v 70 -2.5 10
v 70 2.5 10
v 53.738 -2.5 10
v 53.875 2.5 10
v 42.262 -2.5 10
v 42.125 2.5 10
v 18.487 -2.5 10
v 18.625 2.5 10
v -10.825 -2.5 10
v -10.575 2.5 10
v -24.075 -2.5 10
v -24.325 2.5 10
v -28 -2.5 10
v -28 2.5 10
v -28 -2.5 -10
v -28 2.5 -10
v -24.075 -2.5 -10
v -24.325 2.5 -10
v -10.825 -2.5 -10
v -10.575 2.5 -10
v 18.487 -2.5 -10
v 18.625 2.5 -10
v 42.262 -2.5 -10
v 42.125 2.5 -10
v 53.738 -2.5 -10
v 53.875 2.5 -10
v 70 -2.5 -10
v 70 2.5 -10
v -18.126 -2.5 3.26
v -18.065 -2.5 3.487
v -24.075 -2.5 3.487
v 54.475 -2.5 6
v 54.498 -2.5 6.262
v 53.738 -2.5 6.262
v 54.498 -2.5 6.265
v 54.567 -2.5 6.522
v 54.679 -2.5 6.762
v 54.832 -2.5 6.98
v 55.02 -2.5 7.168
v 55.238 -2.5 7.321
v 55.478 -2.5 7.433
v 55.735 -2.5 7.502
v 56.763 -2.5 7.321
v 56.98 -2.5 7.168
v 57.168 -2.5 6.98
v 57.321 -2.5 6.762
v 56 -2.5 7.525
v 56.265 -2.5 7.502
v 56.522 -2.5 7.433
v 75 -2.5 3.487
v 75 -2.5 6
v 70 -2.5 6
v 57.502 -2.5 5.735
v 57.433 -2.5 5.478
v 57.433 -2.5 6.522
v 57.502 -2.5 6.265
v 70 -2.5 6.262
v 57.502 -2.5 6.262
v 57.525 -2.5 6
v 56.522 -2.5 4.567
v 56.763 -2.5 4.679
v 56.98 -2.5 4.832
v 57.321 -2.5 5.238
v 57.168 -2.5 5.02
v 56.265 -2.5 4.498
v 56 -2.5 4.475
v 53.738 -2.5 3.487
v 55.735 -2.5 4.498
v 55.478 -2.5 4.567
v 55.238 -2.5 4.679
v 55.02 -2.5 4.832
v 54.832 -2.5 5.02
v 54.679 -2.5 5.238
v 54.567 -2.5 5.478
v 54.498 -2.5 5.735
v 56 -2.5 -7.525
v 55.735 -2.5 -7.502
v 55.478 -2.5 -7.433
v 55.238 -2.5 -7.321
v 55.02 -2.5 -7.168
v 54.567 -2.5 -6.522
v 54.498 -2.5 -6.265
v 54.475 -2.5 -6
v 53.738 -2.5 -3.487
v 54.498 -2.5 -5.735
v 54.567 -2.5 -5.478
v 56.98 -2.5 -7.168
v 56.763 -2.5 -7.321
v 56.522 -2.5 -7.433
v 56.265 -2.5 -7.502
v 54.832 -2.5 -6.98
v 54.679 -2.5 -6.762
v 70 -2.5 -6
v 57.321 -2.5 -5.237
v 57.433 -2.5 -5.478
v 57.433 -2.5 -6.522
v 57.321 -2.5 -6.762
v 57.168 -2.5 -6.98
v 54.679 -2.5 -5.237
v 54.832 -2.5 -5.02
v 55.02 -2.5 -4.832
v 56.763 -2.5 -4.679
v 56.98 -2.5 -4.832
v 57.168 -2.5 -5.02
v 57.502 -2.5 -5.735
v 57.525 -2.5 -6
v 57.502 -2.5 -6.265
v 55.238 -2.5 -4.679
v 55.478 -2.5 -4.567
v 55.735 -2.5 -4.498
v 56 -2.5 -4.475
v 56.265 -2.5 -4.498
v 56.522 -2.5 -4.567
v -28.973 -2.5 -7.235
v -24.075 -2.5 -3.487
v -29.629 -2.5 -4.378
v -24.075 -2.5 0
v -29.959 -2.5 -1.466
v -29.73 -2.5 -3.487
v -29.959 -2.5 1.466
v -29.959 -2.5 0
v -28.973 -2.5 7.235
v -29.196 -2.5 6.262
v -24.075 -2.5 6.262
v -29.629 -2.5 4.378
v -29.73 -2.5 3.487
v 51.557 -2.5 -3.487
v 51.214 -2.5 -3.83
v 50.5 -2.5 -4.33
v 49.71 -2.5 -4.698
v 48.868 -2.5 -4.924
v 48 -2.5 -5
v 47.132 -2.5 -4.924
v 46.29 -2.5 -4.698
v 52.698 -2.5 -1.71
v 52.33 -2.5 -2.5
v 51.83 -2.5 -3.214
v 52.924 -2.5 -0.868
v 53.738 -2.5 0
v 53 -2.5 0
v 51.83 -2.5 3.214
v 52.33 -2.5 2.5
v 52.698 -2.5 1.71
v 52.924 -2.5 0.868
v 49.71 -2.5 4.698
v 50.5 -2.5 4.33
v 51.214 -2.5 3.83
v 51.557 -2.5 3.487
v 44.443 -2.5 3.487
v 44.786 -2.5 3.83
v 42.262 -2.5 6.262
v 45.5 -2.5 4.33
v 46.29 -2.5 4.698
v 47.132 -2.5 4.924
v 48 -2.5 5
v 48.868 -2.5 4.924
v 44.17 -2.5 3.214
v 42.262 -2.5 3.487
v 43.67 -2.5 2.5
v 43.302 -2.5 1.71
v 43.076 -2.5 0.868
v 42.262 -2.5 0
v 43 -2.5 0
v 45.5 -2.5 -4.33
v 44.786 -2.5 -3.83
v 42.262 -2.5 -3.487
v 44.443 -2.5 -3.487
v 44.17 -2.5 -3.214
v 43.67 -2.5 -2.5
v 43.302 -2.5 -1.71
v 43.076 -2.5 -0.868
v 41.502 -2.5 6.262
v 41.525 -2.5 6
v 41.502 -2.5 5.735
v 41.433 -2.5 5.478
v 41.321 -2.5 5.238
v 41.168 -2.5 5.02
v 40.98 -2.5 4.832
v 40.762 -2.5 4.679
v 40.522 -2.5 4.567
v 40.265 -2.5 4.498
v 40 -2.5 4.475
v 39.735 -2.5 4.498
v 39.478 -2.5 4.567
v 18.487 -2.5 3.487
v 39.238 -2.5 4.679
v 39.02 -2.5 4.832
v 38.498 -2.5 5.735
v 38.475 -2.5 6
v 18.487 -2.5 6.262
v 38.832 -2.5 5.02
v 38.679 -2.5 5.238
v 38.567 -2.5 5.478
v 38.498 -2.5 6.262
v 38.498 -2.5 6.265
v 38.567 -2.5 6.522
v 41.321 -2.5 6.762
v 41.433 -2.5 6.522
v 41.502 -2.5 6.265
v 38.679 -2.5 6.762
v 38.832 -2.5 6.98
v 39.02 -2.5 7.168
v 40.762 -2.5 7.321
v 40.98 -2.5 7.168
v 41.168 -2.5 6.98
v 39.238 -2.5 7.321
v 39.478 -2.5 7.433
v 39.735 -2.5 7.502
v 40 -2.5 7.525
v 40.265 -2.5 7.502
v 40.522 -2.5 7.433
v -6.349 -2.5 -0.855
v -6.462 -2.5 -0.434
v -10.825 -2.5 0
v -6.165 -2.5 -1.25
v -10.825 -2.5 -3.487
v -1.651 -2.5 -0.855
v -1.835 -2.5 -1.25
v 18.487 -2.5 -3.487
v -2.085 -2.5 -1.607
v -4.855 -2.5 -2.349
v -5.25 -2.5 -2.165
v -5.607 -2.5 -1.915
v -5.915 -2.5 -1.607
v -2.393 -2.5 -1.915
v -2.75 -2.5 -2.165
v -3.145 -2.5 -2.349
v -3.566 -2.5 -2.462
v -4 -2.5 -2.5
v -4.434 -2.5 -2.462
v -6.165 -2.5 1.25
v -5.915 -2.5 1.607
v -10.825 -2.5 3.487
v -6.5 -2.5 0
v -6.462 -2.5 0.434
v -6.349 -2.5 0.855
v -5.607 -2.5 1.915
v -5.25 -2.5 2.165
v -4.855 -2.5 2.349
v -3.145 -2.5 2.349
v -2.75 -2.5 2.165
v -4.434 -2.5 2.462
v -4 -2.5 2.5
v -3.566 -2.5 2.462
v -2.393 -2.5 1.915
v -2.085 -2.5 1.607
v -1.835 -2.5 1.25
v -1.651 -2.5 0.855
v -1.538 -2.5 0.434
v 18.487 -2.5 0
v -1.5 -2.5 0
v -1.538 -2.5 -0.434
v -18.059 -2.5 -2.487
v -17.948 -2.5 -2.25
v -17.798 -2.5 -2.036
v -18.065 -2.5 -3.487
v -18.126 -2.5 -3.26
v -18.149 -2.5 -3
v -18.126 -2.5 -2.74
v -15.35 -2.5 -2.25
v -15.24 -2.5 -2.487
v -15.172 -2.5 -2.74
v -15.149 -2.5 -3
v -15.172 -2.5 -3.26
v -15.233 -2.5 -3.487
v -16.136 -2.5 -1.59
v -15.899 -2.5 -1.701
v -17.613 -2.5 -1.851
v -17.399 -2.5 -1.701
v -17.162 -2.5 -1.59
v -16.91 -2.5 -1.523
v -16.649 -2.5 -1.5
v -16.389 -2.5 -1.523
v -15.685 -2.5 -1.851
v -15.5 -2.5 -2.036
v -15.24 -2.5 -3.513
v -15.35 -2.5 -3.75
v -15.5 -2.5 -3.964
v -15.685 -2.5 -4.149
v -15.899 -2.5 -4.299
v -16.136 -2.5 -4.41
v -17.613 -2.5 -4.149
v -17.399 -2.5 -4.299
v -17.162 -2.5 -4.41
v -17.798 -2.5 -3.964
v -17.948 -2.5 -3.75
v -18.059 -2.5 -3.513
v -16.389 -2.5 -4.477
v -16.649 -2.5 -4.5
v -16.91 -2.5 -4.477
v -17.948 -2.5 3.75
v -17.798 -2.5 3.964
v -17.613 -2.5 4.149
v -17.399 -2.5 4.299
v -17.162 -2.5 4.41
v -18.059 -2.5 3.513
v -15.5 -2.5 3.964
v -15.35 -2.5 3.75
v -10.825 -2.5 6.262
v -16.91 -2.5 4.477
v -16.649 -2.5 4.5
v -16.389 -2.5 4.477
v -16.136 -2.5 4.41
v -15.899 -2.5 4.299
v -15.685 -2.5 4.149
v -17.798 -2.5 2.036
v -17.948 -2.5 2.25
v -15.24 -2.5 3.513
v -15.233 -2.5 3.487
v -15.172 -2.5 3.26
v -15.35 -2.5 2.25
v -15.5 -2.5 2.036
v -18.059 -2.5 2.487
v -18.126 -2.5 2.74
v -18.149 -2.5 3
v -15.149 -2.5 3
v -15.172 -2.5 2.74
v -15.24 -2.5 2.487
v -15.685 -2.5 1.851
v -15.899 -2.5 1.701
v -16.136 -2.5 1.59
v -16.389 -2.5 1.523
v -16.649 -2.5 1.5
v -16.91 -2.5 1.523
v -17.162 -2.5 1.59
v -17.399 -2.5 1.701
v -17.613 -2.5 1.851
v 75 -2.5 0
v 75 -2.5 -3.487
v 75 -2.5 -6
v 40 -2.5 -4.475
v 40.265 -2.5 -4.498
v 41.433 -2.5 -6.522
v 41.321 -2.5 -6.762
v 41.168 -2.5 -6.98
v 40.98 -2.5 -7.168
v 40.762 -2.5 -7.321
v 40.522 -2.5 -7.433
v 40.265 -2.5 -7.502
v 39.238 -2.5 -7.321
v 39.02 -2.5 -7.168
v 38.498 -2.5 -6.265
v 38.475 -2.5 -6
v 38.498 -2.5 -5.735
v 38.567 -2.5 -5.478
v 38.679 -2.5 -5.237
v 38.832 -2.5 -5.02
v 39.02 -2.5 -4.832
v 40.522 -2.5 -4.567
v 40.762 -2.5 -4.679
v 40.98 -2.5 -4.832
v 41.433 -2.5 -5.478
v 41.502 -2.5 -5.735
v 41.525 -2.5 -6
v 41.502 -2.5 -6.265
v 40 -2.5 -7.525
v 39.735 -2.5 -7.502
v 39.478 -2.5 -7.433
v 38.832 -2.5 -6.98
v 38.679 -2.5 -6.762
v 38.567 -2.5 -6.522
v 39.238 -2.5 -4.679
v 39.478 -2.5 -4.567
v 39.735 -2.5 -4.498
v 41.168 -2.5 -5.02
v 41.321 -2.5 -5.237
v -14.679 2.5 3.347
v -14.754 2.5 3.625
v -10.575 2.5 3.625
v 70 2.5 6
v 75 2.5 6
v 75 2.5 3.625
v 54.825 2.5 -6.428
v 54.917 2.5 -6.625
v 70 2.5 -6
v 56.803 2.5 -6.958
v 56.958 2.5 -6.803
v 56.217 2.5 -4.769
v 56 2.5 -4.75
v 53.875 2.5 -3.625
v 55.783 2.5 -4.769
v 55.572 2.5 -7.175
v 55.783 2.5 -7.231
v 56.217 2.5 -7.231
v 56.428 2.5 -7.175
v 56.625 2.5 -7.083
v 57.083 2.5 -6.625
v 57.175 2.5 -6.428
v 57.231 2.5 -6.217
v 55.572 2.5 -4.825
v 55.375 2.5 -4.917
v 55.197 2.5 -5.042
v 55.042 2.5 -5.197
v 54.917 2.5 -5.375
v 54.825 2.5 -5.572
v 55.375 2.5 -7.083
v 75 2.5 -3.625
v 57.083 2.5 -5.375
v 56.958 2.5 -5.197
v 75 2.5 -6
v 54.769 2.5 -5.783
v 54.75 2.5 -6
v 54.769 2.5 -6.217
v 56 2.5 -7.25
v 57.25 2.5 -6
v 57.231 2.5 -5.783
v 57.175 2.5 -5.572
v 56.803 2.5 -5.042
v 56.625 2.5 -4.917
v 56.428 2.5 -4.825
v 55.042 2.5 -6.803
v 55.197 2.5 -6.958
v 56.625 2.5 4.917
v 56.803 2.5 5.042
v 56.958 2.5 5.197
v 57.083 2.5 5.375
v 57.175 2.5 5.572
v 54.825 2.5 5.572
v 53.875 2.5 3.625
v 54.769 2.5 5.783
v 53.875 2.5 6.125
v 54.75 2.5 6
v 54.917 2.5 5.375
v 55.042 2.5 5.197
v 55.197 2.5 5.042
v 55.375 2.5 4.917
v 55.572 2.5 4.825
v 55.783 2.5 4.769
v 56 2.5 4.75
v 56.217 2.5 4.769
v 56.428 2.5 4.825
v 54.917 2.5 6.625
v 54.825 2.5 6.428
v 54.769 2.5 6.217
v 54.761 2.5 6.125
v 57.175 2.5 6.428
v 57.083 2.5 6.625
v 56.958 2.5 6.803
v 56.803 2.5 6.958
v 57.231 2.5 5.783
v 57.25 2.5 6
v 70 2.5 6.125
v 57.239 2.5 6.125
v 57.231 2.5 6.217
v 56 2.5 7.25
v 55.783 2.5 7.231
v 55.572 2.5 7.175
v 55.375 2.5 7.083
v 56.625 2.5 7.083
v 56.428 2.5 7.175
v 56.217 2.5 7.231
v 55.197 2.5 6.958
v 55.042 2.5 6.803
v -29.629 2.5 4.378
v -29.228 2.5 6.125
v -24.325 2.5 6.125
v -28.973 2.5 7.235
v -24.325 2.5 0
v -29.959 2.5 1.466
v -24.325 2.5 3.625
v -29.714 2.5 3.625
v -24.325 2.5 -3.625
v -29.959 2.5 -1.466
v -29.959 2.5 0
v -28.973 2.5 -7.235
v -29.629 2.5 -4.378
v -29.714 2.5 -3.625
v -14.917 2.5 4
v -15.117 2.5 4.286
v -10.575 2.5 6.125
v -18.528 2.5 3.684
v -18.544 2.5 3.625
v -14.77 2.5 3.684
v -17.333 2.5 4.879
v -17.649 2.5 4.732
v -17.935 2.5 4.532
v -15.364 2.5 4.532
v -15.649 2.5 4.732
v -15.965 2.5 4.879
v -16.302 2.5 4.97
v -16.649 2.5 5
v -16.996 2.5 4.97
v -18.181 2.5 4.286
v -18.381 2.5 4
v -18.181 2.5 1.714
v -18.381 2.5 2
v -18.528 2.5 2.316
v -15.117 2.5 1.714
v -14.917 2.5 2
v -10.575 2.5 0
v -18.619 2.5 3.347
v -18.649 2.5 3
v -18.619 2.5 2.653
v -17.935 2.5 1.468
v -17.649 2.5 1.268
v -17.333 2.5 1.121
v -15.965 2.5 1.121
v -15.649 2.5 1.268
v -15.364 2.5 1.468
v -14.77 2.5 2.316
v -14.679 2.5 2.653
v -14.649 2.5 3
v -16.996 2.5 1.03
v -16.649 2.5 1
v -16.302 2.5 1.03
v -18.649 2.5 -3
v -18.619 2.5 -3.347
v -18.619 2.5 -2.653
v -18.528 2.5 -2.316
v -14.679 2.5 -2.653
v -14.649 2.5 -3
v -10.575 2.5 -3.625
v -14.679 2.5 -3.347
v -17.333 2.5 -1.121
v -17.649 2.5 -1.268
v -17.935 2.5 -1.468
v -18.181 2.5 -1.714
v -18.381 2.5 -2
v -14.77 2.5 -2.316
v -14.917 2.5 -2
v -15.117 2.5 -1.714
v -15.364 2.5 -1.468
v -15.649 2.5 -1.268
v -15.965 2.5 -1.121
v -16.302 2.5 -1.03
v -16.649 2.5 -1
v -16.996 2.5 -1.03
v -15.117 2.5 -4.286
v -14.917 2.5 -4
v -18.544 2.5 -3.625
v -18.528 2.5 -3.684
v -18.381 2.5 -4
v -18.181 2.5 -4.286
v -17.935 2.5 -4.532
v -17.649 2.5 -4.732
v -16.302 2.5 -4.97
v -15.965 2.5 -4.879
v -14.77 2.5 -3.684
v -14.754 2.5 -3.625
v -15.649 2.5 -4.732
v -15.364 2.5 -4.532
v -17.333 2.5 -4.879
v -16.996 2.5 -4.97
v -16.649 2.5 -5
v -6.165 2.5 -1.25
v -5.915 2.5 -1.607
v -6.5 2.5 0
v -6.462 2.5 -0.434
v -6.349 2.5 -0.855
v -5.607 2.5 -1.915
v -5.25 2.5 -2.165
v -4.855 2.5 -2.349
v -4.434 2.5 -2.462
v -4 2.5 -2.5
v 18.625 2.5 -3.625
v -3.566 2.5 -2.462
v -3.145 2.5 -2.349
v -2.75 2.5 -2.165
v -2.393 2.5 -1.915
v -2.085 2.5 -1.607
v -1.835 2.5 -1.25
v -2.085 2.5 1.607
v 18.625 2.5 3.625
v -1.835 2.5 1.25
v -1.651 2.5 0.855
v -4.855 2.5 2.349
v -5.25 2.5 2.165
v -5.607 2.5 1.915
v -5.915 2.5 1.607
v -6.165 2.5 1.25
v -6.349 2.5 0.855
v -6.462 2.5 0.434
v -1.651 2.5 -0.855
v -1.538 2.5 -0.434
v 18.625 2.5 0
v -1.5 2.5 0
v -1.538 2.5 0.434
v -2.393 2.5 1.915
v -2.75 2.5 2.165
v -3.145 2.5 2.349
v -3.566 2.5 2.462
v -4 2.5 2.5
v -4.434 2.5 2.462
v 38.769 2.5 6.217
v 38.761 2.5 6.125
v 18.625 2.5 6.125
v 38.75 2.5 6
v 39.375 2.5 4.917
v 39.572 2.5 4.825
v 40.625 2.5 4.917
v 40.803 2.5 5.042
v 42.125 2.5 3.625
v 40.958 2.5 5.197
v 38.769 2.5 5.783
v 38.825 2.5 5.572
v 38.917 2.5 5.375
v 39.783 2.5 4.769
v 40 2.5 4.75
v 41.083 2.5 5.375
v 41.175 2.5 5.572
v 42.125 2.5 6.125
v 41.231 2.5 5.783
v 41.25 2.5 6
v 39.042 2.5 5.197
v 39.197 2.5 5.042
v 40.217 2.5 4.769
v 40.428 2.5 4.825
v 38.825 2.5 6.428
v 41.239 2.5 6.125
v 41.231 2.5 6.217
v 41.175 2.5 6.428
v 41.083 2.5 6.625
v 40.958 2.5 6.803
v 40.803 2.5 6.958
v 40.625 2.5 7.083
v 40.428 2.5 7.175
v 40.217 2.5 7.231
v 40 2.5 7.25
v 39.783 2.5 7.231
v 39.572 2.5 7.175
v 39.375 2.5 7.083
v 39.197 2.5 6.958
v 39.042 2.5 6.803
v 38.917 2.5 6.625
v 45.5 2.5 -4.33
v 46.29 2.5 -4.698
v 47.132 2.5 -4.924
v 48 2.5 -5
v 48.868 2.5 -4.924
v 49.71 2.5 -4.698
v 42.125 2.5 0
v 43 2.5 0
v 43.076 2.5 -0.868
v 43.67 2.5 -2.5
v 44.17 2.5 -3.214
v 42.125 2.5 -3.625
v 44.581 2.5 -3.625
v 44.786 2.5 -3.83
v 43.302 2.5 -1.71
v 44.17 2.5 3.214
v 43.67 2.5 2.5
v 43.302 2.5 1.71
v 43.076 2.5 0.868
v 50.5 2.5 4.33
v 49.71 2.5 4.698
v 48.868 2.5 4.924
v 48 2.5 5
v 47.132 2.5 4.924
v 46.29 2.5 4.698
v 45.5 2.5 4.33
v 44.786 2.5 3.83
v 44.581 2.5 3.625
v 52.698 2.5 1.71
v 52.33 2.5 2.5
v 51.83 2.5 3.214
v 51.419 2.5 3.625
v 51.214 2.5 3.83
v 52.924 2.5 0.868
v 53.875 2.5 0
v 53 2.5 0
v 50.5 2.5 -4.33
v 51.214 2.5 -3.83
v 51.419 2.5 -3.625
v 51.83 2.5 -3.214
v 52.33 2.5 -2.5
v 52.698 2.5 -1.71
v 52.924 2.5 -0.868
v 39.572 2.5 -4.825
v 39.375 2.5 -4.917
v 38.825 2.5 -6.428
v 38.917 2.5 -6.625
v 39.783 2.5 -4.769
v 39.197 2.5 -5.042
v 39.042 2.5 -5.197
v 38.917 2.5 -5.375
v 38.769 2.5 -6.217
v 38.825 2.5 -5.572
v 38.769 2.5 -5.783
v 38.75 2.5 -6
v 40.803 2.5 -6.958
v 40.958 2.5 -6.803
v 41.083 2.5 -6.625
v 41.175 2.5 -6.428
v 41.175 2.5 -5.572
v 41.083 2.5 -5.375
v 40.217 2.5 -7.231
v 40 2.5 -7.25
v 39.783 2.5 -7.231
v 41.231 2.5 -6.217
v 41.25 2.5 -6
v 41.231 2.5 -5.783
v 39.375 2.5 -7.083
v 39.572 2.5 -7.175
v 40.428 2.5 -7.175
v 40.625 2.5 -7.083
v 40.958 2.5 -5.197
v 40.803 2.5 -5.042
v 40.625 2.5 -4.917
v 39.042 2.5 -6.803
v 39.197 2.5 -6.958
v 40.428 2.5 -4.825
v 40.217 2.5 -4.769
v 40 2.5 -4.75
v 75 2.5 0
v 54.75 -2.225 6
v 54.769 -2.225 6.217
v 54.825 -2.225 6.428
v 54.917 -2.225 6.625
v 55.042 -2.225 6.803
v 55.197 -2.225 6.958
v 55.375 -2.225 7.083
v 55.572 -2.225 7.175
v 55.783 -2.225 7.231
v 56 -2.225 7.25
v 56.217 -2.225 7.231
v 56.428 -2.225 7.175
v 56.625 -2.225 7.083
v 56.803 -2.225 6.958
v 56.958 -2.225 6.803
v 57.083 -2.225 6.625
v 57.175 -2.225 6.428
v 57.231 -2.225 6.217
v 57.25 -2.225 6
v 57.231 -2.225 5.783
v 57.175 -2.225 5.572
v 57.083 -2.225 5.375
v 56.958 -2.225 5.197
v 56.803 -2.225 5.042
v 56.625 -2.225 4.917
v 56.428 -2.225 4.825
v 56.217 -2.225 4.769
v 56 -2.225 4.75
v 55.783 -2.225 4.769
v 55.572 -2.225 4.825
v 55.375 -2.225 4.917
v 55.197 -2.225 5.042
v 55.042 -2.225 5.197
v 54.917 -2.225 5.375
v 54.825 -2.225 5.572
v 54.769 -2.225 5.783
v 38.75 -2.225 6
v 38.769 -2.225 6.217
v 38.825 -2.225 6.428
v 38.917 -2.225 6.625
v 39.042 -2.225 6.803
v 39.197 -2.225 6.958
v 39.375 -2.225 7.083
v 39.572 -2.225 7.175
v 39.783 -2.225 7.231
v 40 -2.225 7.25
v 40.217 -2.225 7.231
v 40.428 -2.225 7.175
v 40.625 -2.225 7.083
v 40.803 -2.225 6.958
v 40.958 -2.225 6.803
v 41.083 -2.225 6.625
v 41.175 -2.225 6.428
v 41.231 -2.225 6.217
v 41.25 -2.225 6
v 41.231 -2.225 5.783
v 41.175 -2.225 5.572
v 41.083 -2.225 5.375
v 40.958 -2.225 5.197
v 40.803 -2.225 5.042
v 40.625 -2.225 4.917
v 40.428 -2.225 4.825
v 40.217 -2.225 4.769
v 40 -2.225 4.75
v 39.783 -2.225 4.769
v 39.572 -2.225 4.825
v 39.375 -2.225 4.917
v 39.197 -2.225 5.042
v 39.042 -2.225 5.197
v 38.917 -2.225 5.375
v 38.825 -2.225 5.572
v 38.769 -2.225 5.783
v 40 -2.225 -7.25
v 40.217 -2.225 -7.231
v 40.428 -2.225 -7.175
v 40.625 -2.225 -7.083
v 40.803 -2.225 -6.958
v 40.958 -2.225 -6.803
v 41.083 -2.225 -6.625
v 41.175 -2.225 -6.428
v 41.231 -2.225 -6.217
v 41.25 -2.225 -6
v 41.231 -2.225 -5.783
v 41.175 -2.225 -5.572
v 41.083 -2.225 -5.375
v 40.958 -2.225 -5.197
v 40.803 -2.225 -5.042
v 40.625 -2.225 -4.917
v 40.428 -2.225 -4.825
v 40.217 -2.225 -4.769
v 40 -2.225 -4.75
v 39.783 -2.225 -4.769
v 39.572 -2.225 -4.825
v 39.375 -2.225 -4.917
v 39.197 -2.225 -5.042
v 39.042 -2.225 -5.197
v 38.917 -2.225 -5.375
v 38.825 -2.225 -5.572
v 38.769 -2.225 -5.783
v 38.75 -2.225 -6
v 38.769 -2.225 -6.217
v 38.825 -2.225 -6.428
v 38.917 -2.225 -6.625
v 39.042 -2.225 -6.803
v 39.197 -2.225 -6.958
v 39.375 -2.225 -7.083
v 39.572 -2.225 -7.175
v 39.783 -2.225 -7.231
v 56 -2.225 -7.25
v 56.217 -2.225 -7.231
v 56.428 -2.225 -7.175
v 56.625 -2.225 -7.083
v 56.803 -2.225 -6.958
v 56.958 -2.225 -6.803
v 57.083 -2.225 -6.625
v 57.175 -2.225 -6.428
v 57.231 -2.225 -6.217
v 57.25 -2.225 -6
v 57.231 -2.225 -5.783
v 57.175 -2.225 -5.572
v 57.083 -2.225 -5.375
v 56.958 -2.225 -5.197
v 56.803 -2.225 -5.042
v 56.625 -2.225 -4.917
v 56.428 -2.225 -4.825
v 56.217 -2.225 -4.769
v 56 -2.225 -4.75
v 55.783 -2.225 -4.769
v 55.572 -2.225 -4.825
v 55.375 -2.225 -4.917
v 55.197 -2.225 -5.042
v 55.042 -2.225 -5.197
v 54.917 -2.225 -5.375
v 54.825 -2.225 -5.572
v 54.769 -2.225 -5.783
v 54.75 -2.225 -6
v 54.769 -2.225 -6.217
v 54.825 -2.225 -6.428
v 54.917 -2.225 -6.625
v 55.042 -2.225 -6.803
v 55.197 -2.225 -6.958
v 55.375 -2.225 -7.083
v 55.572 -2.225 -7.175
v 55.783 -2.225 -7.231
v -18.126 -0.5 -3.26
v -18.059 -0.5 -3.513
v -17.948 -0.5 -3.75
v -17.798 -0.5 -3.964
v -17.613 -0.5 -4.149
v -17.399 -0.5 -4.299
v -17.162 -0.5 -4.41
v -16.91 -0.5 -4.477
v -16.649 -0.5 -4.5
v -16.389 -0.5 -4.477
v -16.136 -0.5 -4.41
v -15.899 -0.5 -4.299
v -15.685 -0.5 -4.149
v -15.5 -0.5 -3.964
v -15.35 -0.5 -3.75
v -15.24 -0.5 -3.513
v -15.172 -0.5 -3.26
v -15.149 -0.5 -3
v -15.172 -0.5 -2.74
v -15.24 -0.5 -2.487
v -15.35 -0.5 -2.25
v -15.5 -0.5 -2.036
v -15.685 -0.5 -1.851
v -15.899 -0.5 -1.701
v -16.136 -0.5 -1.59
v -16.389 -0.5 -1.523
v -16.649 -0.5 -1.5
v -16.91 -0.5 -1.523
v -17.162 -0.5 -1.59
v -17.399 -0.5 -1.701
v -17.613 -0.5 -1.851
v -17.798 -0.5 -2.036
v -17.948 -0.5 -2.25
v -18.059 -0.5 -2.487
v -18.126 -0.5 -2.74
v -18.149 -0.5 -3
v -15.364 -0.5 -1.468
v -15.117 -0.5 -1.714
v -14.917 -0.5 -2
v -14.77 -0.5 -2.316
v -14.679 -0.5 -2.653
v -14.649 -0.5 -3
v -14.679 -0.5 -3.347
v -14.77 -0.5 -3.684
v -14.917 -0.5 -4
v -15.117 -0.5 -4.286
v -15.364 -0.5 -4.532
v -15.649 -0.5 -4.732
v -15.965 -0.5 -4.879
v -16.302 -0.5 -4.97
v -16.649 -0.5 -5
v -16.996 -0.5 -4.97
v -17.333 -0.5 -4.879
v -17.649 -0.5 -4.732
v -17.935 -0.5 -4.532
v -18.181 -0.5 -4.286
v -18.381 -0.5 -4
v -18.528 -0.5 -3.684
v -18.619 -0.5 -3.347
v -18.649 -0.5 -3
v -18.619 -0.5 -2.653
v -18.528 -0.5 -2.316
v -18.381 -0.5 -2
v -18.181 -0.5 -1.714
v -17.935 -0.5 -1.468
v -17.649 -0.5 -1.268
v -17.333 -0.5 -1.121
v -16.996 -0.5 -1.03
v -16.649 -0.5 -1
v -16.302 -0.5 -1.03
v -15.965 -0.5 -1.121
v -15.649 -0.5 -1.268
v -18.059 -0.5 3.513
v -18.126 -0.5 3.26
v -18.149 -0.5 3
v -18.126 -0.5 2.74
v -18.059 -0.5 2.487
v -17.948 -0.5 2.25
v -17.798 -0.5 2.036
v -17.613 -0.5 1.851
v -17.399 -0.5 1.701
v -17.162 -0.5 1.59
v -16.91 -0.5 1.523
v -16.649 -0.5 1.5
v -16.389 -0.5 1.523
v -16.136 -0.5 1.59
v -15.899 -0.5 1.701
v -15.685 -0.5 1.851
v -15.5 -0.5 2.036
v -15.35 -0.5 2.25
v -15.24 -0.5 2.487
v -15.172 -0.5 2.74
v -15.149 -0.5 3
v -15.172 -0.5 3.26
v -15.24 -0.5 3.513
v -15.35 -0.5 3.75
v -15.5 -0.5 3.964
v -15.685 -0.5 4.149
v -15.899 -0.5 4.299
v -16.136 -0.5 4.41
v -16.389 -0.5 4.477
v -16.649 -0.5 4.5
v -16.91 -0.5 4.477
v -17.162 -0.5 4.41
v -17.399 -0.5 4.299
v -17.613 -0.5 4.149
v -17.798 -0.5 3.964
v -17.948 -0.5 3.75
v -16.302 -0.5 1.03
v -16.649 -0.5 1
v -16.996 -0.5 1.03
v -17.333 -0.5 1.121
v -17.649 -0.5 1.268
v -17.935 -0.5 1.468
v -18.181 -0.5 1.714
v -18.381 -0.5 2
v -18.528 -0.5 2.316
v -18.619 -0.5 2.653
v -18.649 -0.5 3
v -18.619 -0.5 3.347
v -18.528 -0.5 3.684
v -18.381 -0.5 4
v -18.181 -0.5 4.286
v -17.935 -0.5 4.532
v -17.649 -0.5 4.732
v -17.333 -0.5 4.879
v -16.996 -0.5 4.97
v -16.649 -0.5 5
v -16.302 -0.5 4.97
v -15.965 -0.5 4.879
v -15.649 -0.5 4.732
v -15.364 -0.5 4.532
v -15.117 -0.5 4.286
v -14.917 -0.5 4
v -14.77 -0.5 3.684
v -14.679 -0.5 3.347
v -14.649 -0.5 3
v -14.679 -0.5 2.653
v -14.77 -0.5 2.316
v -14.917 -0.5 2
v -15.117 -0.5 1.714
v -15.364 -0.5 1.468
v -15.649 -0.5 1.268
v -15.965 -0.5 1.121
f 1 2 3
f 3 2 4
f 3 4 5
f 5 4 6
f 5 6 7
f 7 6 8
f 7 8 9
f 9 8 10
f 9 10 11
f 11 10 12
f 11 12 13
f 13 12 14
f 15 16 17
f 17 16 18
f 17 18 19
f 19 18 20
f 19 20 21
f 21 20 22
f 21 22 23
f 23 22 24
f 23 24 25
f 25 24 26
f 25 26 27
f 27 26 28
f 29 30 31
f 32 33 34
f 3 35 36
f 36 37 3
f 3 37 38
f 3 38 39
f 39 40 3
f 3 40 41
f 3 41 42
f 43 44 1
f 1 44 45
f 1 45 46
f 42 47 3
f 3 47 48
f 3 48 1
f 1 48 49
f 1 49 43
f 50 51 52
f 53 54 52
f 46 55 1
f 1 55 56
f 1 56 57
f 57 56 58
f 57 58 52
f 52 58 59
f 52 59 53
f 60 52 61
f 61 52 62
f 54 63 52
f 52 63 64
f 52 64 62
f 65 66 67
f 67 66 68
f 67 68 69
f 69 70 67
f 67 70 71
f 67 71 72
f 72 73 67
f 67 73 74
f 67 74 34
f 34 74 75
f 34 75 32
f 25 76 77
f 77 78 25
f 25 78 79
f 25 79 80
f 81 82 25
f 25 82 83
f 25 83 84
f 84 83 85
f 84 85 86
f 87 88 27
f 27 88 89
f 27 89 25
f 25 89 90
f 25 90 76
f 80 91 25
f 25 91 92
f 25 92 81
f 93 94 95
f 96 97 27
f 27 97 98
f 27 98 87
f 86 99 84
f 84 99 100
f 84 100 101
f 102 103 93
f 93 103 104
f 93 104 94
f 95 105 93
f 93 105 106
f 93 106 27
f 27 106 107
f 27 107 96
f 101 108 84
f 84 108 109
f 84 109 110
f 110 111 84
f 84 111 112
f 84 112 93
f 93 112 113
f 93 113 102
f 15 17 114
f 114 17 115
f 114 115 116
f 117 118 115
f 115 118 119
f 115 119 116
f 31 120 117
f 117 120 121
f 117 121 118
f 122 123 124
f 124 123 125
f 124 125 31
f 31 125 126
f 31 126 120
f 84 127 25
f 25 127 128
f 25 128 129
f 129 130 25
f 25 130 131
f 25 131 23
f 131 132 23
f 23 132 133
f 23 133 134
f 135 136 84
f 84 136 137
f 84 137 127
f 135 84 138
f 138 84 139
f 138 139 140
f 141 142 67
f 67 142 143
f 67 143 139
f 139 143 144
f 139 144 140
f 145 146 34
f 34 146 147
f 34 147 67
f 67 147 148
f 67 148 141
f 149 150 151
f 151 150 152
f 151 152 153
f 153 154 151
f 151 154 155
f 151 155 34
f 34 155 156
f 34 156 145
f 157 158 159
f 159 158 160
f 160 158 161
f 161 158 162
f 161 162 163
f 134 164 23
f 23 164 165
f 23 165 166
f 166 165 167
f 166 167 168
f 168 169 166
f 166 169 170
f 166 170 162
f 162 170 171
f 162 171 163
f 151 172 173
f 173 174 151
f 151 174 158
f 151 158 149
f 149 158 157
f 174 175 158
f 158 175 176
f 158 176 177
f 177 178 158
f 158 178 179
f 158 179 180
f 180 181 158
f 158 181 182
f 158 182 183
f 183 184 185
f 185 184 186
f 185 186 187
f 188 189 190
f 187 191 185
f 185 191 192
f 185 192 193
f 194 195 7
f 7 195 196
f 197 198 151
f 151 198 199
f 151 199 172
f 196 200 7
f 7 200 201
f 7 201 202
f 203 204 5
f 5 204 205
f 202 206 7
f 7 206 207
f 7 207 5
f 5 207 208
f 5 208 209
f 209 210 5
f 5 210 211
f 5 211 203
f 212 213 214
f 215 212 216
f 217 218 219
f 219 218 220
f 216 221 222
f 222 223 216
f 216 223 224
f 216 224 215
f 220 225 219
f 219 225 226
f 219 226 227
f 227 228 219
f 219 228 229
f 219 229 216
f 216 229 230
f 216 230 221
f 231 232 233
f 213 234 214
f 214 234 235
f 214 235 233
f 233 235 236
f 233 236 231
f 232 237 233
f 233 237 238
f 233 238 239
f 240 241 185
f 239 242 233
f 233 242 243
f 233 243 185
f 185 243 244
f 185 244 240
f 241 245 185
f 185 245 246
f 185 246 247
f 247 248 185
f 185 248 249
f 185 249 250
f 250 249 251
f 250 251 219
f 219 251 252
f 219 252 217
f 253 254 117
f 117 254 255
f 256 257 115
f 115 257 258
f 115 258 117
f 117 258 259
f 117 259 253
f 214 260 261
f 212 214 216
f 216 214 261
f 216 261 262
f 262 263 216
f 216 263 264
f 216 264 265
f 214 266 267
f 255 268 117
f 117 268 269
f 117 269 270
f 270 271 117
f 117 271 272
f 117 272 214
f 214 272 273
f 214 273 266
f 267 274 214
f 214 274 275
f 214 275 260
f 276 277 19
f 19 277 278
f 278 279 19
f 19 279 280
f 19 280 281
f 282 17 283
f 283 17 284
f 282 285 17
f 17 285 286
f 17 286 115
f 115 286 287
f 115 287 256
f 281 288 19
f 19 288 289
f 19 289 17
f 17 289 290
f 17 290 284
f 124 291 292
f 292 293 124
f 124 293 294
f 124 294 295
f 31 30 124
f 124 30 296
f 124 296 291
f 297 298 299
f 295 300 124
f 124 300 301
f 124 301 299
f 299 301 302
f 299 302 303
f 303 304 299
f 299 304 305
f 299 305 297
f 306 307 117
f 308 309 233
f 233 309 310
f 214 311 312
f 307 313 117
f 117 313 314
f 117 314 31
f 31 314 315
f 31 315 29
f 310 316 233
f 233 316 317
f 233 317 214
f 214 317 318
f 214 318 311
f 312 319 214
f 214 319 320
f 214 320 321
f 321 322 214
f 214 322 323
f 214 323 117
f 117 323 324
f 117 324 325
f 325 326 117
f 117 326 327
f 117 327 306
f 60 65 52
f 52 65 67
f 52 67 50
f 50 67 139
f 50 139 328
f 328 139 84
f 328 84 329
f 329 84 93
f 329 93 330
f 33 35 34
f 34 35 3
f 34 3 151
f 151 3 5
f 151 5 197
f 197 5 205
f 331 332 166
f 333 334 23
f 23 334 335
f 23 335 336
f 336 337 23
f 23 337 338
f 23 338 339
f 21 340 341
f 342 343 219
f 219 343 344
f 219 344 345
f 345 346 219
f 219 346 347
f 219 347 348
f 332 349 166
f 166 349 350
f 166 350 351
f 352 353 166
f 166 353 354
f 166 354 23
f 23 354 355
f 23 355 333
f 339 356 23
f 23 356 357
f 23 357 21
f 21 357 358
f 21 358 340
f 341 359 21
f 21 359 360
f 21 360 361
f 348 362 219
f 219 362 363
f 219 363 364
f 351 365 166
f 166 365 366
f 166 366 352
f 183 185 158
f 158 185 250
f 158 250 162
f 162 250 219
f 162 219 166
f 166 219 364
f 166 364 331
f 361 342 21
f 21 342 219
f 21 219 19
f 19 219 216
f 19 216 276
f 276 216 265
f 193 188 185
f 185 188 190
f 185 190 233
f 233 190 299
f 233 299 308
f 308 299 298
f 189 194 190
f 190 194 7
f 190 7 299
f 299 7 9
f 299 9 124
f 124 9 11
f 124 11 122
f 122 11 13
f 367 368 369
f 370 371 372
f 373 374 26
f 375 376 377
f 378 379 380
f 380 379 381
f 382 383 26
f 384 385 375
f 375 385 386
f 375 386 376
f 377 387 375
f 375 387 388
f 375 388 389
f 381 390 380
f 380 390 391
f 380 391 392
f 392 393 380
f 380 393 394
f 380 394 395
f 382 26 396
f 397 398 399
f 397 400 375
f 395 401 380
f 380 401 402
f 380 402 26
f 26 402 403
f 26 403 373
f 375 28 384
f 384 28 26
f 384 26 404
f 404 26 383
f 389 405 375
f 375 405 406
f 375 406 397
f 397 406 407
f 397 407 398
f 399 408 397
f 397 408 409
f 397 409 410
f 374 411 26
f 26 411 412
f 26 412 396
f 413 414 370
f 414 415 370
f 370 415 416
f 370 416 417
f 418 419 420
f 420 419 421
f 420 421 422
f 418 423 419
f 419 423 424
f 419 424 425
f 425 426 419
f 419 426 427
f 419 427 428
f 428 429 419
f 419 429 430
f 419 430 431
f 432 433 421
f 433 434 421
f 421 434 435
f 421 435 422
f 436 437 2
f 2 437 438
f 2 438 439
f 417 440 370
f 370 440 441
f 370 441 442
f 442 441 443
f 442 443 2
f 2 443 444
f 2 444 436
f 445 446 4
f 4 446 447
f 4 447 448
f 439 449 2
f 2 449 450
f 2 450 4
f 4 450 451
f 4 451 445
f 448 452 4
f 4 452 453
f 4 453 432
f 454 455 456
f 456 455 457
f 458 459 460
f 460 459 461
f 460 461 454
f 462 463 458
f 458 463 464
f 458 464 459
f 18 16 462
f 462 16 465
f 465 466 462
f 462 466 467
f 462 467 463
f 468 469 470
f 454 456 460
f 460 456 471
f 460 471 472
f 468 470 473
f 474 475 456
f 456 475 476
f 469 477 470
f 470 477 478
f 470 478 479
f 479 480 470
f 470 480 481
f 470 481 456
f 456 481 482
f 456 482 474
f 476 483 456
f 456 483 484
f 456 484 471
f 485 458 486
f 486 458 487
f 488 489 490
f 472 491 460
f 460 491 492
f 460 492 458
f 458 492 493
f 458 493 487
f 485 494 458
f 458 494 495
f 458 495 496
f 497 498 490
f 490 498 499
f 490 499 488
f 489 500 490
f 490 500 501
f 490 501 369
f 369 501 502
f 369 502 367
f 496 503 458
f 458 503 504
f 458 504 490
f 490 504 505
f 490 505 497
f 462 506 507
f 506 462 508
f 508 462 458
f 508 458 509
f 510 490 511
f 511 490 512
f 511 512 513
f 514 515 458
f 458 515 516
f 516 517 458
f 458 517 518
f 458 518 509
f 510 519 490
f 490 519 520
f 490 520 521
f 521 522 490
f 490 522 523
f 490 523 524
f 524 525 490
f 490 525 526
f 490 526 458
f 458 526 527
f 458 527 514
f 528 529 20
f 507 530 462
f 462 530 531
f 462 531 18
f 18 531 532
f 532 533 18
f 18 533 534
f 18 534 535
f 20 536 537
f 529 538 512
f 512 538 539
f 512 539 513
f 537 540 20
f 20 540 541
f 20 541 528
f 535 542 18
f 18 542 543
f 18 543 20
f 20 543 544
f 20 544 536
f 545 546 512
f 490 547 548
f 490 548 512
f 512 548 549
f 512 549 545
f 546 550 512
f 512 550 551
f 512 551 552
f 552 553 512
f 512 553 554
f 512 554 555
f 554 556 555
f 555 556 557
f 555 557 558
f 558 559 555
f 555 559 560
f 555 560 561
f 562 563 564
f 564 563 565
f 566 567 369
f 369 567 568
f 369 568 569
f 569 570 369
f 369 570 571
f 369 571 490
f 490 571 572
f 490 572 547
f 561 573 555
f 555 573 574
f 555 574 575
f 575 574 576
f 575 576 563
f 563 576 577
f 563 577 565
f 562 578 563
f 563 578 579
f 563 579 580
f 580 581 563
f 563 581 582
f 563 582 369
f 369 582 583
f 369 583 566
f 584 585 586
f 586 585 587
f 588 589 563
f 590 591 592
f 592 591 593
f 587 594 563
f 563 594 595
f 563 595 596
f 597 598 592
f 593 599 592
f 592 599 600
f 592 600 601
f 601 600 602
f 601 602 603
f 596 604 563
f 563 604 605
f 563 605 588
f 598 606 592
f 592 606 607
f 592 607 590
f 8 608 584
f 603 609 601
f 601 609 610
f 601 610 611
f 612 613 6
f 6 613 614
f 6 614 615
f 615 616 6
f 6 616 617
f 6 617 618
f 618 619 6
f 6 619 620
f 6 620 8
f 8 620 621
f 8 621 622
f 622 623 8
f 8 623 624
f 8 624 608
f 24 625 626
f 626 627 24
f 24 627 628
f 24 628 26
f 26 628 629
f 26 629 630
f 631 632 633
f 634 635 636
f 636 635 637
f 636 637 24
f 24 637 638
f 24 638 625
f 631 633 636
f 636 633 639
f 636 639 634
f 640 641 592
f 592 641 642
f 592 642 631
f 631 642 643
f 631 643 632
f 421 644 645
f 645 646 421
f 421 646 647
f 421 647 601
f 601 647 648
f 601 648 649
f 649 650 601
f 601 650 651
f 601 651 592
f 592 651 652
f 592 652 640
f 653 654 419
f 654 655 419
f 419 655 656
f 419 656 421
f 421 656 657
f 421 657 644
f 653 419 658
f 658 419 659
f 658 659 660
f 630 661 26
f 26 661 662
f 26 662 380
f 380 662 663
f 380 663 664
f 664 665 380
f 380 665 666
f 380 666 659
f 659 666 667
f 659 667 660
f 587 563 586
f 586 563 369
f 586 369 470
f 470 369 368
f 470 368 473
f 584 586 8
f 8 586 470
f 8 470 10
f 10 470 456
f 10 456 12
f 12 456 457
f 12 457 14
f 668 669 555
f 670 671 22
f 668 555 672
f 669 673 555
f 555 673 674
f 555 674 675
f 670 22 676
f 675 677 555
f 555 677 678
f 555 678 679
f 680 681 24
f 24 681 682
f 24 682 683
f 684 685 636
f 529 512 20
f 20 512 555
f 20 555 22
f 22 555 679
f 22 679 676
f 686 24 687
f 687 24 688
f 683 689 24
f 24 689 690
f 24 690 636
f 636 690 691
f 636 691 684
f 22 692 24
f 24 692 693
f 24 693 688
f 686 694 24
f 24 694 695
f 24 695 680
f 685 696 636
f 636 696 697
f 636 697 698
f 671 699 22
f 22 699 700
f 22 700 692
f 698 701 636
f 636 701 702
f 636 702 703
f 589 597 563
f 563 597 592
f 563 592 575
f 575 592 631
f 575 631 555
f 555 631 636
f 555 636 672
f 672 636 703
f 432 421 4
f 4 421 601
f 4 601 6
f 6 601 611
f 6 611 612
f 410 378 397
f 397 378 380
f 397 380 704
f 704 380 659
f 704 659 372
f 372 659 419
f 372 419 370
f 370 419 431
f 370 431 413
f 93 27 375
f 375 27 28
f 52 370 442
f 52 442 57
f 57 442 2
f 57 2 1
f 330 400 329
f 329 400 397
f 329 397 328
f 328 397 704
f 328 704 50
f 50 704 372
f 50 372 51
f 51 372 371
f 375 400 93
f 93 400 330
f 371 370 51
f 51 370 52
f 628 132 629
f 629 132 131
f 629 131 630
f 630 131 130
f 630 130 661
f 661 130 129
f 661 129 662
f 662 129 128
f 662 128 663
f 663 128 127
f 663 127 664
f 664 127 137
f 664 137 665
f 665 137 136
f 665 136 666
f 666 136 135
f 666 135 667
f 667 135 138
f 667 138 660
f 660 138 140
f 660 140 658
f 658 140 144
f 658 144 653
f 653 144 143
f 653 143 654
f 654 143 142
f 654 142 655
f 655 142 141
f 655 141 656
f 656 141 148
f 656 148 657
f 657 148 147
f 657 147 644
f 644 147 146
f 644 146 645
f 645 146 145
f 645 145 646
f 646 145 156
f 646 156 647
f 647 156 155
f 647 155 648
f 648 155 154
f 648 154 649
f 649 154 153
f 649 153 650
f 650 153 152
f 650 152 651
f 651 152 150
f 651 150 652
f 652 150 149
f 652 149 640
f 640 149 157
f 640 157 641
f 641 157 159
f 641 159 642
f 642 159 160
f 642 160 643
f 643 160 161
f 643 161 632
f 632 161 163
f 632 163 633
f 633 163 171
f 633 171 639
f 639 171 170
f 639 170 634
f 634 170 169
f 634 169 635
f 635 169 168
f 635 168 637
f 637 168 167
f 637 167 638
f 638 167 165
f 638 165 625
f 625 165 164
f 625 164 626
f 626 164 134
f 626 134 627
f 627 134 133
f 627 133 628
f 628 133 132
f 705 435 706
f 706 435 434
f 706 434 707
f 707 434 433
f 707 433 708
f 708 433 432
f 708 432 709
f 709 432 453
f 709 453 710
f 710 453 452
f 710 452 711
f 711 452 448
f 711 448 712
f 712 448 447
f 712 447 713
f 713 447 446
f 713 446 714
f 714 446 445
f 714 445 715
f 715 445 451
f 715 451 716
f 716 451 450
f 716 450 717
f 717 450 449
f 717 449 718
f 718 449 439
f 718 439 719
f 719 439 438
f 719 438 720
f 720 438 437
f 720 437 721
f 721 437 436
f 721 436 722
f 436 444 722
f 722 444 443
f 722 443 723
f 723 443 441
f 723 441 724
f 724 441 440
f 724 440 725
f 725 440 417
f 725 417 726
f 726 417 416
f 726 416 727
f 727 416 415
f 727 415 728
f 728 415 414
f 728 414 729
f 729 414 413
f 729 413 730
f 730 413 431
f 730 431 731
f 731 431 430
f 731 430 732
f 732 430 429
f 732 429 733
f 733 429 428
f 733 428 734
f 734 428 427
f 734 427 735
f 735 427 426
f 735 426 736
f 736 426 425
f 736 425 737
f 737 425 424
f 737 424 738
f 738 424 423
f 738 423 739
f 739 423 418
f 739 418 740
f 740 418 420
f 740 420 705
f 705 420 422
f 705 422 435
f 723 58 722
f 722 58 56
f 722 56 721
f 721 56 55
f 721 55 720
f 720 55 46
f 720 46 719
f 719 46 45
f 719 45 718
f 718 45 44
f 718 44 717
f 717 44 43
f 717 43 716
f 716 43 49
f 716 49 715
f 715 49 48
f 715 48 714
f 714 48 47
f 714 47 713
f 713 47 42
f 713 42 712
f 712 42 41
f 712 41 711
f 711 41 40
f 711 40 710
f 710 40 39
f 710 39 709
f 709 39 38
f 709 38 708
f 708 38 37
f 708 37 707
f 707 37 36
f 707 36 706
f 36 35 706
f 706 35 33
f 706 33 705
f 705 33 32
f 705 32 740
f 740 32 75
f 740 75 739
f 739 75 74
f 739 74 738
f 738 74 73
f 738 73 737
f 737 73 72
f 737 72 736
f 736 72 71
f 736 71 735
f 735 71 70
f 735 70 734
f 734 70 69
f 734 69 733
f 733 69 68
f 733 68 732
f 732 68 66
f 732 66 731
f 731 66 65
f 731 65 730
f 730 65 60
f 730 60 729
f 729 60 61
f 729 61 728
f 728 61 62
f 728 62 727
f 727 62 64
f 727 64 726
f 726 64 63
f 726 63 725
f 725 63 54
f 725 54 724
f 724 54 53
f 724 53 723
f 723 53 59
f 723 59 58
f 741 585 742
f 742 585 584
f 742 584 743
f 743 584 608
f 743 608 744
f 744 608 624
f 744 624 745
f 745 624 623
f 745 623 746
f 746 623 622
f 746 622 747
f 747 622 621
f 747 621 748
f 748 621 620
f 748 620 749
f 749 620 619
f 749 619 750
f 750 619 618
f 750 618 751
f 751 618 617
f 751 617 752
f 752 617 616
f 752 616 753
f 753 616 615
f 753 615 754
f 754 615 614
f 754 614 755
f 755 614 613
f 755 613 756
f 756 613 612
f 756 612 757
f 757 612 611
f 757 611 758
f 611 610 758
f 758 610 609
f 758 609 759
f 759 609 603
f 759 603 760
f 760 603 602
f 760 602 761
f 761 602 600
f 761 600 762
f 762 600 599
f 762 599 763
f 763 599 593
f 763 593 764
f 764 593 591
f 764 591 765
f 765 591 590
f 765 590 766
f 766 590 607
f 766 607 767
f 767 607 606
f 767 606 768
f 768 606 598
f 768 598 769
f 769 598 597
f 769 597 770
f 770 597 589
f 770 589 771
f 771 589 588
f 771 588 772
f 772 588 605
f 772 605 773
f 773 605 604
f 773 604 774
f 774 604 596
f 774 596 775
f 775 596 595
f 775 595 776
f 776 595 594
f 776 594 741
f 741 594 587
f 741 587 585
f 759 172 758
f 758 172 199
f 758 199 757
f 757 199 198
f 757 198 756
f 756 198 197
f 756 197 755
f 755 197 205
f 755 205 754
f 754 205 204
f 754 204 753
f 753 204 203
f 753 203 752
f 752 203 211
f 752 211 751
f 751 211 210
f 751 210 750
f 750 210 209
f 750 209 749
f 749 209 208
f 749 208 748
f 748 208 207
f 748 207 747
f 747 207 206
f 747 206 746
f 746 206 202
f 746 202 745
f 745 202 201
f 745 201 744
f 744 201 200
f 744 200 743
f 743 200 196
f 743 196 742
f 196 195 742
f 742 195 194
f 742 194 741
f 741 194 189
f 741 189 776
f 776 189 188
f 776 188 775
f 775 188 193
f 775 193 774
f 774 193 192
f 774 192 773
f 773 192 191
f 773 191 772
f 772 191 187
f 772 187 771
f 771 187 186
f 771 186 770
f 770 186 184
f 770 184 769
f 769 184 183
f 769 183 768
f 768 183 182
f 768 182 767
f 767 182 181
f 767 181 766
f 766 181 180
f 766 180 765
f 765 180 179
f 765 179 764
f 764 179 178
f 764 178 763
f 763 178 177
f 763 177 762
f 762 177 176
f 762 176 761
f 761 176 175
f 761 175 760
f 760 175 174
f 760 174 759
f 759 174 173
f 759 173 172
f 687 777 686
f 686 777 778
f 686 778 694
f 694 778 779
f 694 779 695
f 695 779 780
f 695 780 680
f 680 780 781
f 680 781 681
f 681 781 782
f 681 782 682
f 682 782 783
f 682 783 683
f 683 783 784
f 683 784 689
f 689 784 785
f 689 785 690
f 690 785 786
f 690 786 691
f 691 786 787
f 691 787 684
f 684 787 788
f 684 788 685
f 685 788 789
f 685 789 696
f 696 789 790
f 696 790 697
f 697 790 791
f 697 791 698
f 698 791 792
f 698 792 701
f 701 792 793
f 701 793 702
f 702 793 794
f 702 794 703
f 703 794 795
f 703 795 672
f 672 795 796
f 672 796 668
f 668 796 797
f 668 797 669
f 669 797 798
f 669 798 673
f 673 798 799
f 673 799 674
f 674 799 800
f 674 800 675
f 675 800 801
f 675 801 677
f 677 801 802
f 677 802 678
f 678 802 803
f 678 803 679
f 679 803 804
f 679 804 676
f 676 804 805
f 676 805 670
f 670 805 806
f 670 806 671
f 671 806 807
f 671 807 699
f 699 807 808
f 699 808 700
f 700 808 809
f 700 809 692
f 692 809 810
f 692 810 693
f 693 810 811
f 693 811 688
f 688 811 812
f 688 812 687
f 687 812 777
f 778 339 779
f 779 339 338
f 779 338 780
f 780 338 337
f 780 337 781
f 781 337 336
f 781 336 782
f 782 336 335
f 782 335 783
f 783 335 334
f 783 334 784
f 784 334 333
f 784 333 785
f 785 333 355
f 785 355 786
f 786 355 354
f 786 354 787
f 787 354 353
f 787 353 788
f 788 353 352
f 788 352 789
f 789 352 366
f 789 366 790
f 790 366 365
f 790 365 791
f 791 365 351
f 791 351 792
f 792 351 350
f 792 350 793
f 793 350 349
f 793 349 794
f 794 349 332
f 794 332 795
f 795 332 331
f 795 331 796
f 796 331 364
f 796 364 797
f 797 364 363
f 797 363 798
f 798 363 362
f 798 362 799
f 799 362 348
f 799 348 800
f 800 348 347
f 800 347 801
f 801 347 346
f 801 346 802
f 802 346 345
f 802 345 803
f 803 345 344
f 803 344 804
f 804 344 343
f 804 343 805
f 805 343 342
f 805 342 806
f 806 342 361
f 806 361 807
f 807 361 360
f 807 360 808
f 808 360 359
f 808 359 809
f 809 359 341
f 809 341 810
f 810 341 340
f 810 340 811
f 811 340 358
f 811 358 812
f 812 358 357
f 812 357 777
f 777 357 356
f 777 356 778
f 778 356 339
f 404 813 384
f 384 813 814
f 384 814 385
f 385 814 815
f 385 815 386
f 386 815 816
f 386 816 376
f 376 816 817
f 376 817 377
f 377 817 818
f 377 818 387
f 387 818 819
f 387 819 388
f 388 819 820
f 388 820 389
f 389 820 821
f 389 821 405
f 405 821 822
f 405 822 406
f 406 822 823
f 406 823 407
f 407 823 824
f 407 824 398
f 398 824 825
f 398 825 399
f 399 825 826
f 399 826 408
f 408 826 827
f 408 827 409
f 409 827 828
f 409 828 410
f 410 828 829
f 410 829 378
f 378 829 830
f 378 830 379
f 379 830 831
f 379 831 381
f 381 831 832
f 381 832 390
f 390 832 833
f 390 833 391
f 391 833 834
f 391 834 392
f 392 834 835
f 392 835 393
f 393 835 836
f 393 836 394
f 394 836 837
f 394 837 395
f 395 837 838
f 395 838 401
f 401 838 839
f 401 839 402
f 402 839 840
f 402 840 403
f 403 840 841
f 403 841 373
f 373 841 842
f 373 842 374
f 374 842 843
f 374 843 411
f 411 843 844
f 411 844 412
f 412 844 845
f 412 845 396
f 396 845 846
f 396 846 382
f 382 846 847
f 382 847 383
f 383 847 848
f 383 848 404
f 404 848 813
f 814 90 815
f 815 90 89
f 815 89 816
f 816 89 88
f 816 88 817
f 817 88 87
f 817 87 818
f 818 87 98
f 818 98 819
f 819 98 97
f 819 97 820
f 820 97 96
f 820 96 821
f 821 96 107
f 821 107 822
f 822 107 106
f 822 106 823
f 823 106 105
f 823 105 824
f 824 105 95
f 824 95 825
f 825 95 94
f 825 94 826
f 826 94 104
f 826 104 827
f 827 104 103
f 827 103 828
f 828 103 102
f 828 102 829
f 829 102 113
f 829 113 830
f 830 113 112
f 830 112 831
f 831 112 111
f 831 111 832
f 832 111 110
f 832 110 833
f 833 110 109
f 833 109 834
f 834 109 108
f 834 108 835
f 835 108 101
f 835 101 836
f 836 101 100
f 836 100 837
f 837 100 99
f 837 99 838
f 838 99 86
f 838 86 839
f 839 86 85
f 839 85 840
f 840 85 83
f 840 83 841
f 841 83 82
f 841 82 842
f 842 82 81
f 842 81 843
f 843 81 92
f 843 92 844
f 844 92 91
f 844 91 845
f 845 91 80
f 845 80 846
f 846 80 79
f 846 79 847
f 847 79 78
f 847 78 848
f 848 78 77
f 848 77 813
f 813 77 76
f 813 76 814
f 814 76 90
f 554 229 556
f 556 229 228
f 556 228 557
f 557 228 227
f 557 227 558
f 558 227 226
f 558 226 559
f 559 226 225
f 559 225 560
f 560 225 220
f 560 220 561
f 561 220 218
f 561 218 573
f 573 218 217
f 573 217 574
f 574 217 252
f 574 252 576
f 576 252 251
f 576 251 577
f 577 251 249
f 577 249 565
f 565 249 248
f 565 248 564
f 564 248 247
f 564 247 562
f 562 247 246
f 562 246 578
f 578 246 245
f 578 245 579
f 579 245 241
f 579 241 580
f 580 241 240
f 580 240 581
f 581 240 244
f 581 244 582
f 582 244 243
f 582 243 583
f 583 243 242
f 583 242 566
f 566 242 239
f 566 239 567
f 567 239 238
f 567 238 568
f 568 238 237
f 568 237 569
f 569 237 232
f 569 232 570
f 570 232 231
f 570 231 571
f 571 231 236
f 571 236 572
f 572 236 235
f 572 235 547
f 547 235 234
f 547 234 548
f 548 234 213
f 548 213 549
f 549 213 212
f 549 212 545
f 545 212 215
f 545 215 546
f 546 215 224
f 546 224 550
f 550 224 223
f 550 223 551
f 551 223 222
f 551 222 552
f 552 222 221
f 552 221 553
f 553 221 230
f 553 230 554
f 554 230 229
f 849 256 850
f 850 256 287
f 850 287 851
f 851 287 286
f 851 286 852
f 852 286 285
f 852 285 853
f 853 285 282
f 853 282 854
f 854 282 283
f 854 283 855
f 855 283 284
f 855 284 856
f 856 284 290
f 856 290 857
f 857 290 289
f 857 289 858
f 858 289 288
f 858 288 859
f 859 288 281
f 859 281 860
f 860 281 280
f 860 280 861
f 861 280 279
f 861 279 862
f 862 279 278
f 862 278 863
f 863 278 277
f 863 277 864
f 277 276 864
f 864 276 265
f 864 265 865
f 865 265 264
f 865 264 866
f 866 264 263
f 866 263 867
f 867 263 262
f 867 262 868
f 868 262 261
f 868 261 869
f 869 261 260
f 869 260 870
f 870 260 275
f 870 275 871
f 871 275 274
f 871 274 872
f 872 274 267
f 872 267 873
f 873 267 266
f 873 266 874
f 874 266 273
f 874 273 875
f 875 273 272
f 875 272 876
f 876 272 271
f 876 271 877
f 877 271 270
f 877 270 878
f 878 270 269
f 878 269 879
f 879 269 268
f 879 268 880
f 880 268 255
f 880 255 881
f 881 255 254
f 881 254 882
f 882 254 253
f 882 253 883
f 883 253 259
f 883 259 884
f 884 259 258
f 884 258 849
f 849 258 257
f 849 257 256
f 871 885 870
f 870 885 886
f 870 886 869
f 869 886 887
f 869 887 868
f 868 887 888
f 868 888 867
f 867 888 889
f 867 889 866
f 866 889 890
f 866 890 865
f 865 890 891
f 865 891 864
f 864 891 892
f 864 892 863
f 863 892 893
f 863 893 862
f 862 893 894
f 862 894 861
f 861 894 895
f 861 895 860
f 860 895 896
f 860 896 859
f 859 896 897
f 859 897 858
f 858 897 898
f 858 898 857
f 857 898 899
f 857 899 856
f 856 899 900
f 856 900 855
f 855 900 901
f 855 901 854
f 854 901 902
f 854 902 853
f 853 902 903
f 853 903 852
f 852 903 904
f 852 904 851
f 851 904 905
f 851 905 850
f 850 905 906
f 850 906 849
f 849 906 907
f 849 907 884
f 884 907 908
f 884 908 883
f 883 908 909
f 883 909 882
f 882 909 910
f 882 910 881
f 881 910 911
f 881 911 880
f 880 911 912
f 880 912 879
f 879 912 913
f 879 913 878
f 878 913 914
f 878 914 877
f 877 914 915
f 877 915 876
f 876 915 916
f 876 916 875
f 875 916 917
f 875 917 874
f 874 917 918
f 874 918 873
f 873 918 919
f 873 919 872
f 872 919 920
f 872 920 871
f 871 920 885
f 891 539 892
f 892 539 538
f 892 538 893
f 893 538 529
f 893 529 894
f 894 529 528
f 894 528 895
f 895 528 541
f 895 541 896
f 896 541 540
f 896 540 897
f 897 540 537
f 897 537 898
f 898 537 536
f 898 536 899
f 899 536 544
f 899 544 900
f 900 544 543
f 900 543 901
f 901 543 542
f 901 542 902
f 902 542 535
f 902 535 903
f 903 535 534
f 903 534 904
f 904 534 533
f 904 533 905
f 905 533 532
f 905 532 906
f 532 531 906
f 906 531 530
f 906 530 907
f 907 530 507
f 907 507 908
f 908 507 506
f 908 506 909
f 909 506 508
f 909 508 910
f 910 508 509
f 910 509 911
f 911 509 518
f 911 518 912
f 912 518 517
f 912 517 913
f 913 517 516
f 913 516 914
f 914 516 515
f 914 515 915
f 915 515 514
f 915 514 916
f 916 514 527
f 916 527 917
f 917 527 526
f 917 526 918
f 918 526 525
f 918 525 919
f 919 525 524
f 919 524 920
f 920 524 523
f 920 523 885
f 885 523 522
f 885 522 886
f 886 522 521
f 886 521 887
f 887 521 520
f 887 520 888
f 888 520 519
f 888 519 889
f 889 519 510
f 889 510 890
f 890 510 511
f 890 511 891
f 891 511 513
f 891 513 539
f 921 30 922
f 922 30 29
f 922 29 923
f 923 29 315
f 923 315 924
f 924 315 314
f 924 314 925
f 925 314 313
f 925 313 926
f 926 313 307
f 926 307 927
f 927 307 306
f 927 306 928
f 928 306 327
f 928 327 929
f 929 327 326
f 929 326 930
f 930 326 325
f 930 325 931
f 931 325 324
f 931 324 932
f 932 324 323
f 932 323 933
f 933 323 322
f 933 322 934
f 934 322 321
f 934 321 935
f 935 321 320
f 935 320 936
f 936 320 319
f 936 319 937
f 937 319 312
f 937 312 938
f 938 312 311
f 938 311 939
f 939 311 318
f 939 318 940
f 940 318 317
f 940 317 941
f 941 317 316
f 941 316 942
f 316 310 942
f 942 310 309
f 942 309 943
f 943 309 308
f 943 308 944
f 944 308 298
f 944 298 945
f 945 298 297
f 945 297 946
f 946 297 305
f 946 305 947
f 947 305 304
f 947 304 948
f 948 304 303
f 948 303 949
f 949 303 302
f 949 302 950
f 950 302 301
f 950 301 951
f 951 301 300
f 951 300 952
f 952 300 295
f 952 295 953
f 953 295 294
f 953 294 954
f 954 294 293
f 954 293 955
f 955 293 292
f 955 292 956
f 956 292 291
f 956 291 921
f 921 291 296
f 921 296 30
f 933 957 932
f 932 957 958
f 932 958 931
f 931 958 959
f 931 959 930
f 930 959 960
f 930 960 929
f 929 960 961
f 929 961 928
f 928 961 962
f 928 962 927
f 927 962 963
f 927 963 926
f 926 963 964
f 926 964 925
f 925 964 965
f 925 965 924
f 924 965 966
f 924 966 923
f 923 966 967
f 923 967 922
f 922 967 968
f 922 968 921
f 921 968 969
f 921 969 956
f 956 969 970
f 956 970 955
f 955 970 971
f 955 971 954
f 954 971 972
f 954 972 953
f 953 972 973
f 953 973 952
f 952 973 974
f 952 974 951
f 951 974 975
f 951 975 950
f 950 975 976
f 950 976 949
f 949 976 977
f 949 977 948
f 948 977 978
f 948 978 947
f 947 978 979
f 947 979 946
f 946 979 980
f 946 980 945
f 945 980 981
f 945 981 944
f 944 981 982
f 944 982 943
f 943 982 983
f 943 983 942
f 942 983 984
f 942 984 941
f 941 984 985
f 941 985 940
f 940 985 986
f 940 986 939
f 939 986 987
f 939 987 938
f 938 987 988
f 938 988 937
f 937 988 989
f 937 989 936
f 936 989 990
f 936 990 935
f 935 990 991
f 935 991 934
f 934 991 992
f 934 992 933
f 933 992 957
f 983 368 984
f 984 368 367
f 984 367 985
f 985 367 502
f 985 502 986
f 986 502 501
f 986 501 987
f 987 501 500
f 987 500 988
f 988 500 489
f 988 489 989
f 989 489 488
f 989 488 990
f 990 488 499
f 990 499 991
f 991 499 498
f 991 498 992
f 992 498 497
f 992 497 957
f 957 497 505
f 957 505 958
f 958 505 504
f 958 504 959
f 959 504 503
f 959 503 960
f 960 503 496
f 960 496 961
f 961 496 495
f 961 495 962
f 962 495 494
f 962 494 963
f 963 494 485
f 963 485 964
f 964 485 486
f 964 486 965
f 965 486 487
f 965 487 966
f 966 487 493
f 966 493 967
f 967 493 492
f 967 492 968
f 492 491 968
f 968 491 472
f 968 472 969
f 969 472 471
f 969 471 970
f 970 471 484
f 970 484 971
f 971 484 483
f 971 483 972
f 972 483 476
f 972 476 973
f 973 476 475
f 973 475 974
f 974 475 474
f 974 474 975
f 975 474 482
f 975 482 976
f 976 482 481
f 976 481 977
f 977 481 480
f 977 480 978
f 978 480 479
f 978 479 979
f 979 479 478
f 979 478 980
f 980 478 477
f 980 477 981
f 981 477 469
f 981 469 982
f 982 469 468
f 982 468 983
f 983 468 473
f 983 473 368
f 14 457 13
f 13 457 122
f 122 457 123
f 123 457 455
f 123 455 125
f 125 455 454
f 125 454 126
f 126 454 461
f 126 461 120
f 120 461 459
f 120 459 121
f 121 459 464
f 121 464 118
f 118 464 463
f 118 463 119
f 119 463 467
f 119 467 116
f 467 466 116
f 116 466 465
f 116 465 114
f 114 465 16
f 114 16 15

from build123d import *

# Parameters (mm, degrees)
SKETCH1_W                               = 140
SKETCH1_H                               = 20
SKETCH1_W_2                             = 5
SKETCH1_H_2                             = 12
BOSS_EXTRUDE1_DEPTH                     = 2.5
SKETCH2_R                               = 5
CUT_EXTRUDE1_DEPTH                      = 5
M3_TAPPED_HOLE2_D                       = 2.5
M3_TAPPED_HOLE2_CSINK_D                 = 3.05
M3_TAPPED_HOLE2_CSINK_ANGLE             = 90
F_5_0MM_DOWEL_HOLE1_D                   = 5
CBORE_FOR_M5_HEX_HEAD_BOLT2_D           = 3
CBORE_FOR_M5_HEX_HEAD_BOLT2_CBORE_D     = 4
CBORE_FOR_M5_HEX_HEAD_BOLT2_CBORE_DEPTH = 3
CUT_EXTRUDE2_DEPTH                      = 10


with BuildPart() as part:
    # Sketch1 → Boss-Extrude1 (new, symmetric)
    with BuildSketch(Plane(origin=(0, 0, 0), x_dir=(1, 0, 0), z_dir=(0, 1, 0))):
        Rectangle(SKETCH1_W, SKETCH1_H)
        with Locations((72.5, 0)):
            Rectangle(SKETCH1_W_2, SKETCH1_H_2)
    extrude(amount=BOSS_EXTRUDE1_DEPTH, both=True)

    # Sketch2 → Cut-Extrude1 (cut)
    with BuildSketch(Plane.XZ.offset(2.5)):
        with Locations(Location((48, 0, 0), (0, 0, 270))):
            Circle(SKETCH2_R)
    extrude(amount=-CUT_EXTRUDE1_DEPTH, mode=Mode.SUBTRACT)

    # M3 Tapped Hole2 (through all)
    with Locations(Plane(origin=(0, -2.5, 0), x_dir=(-1, 0, 0), z_dir=(0, -1, 0))):
        with Locations((-56, 6), (-40, 6), (-40, -6), (-56, -6)):
            CounterSinkHole(M3_TAPPED_HOLE2_D / 2, M3_TAPPED_HOLE2_CSINK_D / 2, counter_sink_angle=M3_TAPPED_HOLE2_CSINK_ANGLE)

    # Ø5.0mm Dowel Hole1 (through all)
    with Locations(Plane(origin=(0, -2.5, 0), x_dir=(-1, 0, 0), z_dir=(0, -1, 0))):
        with Locations((4, 0)):
            Hole(F_5_0MM_DOWEL_HOLE1_D / 2)

    # CBORE for M5 Hex Head Bolt2 (through all)
    with Locations(Plane(origin=(-16.649110641, 2.5, 3), x_dir=(0, 0, 1), z_dir=(0, 1, 0))):
        with Locations((0, 0), (-6, 0)):
            CounterBoreHole(CBORE_FOR_M5_HEX_HEAD_BOLT2_D / 2, CBORE_FOR_M5_HEX_HEAD_BOLT2_CBORE_D / 2, CBORE_FOR_M5_HEX_HEAD_BOLT2_CBORE_DEPTH)

    # Sketch29 → Cut-Extrude2 (cut)
    with BuildSketch(Plane(origin=(0, 2.5, 0), x_dir=(1, 0, 0), z_dir=(0, 1, 0))):
        with BuildLine():
            ThreePointArc((-28, -10), (-30, 0), (-28, 10))
            Line((-28, 10), (-70, 10))
            Line((-70, 10), (-70, -10))
            Line((-70, -10), (-28, -10))
        make_face()
    extrude(amount=-CUT_EXTRUDE2_DEPTH, mode=Mode.SUBTRACT)


solid = part.part
